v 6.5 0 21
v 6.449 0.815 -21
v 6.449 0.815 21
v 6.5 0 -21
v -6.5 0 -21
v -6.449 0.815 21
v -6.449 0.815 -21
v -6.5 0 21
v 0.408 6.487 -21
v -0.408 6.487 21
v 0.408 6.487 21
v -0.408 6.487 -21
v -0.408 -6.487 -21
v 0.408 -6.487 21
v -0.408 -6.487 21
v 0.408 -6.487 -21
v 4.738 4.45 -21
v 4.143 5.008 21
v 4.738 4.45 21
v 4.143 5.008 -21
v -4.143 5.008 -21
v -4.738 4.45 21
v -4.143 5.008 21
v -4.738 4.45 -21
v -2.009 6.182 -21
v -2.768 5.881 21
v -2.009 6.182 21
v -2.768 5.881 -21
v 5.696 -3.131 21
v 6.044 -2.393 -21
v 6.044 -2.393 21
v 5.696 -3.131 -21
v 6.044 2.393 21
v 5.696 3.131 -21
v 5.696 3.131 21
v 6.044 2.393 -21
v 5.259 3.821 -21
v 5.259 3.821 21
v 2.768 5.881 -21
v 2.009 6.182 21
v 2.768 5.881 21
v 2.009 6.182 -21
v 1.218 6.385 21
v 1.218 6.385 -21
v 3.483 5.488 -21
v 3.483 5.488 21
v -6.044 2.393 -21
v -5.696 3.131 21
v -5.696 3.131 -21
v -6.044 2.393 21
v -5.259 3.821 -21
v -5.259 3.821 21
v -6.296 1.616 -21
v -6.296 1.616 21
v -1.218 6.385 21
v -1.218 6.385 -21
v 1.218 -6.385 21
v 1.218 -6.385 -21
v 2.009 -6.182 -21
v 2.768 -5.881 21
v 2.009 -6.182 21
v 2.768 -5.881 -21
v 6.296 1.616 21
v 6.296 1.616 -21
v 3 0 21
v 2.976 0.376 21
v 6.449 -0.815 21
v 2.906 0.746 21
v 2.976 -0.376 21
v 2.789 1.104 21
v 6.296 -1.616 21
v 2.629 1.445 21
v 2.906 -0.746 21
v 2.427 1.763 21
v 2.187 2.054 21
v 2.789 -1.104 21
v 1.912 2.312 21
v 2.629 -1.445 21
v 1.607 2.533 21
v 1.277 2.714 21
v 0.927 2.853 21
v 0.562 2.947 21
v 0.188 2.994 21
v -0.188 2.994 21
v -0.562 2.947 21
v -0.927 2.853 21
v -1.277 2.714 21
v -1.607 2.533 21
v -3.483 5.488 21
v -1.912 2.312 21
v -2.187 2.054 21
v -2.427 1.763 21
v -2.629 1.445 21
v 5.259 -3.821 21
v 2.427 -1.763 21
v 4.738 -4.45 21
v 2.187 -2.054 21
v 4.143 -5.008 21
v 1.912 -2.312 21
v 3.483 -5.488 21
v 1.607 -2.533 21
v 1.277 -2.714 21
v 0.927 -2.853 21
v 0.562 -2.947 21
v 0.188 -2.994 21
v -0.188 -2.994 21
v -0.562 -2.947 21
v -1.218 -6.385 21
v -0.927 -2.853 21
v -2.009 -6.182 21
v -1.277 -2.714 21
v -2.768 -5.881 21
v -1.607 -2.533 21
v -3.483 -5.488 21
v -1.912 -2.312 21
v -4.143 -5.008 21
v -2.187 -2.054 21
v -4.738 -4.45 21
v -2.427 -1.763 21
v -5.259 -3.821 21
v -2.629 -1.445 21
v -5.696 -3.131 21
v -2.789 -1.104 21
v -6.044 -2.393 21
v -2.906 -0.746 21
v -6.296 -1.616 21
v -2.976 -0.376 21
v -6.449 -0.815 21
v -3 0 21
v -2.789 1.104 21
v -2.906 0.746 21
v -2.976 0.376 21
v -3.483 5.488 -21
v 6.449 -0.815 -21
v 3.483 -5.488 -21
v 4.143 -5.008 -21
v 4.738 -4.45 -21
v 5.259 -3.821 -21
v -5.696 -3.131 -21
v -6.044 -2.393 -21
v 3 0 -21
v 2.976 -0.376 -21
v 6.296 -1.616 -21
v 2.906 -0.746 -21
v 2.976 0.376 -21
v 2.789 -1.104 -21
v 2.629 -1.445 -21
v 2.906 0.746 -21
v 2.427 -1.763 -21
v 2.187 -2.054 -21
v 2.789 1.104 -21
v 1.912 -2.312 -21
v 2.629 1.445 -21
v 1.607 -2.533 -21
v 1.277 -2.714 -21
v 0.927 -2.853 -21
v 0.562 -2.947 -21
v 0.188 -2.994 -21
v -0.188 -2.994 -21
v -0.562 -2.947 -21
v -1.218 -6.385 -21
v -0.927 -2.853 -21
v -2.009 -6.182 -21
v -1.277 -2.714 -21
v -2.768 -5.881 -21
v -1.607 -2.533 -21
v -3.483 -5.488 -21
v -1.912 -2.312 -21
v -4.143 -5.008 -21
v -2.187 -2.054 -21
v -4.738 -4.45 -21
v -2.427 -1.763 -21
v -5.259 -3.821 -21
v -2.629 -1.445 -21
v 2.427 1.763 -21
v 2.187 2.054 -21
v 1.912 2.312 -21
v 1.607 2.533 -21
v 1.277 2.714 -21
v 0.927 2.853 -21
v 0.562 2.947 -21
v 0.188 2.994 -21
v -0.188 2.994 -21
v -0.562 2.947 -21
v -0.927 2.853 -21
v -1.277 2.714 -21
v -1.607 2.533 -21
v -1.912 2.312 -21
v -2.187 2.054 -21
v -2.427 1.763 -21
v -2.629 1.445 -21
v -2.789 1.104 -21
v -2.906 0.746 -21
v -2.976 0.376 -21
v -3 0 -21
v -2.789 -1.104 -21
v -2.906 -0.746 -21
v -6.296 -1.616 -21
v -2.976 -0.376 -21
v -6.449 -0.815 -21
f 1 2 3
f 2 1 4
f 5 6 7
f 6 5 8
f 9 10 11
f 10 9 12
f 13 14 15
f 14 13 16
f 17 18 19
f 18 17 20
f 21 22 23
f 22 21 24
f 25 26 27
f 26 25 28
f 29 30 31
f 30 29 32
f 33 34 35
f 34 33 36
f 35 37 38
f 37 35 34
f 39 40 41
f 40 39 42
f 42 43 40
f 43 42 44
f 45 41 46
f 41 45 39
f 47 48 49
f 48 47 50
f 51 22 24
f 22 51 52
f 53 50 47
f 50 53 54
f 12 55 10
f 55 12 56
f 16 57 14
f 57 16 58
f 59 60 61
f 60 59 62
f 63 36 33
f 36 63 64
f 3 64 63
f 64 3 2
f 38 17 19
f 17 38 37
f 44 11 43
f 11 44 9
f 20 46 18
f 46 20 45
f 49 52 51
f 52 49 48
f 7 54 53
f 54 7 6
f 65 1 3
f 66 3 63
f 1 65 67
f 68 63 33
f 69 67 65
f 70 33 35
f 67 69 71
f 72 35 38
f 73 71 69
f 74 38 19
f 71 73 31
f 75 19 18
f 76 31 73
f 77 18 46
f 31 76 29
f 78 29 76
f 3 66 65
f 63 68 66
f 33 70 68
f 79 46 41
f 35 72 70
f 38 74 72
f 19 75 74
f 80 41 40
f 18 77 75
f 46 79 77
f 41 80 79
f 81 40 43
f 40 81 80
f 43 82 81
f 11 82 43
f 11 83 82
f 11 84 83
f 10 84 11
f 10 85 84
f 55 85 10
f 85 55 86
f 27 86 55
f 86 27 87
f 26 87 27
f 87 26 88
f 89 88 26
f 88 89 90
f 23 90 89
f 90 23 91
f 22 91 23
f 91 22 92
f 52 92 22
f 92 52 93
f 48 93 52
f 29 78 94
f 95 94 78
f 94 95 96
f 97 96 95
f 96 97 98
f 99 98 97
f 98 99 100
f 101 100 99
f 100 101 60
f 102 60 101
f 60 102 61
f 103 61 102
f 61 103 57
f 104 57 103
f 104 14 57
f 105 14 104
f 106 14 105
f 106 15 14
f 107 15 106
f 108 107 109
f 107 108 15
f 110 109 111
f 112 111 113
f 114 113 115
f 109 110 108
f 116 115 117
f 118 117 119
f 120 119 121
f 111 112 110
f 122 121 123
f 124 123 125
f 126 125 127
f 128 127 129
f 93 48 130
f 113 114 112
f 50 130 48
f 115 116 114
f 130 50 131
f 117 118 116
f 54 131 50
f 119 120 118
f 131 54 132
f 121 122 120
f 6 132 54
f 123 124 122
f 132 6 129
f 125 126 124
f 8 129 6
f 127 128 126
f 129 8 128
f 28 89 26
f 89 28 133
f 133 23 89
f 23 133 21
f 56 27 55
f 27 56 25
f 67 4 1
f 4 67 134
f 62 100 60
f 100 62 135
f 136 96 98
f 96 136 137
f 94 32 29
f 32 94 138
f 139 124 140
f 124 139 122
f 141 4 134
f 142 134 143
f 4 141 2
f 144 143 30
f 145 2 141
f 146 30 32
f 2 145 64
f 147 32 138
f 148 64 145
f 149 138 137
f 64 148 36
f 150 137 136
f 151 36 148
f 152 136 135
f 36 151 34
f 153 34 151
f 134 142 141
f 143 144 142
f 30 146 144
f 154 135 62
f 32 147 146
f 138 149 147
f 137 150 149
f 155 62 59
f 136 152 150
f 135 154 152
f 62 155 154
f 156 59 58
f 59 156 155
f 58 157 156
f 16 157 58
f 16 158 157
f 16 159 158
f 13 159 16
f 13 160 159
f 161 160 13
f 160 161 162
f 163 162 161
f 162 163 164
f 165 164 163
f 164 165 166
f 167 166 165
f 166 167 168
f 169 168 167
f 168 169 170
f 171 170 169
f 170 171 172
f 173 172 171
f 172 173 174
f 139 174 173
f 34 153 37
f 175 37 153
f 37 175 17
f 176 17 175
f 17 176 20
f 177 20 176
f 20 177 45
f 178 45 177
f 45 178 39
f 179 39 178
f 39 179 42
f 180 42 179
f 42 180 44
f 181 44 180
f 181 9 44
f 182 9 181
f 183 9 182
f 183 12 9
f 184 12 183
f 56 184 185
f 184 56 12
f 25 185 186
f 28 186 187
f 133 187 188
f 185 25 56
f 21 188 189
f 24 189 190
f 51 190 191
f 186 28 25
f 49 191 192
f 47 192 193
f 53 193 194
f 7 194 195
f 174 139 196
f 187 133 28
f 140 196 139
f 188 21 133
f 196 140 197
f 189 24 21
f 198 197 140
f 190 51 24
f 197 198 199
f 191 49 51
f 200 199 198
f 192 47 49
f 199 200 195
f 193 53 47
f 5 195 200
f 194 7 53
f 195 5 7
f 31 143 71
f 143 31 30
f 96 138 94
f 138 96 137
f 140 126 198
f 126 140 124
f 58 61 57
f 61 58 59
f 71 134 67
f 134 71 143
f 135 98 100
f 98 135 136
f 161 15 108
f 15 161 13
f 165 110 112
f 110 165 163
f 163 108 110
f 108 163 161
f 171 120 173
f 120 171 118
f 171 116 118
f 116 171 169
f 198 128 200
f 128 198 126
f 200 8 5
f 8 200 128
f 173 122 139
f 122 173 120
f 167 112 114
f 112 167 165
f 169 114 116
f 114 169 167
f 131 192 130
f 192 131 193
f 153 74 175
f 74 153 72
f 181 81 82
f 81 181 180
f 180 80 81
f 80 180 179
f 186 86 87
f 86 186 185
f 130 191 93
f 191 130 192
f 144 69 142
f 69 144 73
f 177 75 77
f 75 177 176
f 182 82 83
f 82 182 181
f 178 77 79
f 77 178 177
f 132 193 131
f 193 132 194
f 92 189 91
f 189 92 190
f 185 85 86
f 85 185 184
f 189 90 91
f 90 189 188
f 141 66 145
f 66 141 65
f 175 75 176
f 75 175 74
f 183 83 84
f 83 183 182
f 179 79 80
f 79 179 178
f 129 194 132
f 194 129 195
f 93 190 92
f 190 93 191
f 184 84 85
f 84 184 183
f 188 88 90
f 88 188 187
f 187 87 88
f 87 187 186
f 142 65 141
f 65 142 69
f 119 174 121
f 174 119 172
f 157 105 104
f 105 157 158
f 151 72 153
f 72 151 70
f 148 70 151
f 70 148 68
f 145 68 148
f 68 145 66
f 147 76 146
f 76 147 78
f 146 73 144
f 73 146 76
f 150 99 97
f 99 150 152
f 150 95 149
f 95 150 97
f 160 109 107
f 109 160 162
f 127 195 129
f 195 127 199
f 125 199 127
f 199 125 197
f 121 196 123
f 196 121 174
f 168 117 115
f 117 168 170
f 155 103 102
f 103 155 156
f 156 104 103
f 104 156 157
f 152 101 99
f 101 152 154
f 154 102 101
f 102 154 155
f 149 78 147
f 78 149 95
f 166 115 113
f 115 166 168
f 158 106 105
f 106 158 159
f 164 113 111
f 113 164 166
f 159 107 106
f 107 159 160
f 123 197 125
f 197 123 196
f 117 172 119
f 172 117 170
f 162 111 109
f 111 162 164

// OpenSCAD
$fn = 50;


difference() {
	union() {
		translate(v = [0, 0, -21.0000000000]) {
			cylinder(h = 42, r = 6.5000000000);
		}
	}
	union() {
		translate(v = [0, 0, -100.0000000000]) {
			cylinder(h = 200, r = 3);
		}
	}
}
